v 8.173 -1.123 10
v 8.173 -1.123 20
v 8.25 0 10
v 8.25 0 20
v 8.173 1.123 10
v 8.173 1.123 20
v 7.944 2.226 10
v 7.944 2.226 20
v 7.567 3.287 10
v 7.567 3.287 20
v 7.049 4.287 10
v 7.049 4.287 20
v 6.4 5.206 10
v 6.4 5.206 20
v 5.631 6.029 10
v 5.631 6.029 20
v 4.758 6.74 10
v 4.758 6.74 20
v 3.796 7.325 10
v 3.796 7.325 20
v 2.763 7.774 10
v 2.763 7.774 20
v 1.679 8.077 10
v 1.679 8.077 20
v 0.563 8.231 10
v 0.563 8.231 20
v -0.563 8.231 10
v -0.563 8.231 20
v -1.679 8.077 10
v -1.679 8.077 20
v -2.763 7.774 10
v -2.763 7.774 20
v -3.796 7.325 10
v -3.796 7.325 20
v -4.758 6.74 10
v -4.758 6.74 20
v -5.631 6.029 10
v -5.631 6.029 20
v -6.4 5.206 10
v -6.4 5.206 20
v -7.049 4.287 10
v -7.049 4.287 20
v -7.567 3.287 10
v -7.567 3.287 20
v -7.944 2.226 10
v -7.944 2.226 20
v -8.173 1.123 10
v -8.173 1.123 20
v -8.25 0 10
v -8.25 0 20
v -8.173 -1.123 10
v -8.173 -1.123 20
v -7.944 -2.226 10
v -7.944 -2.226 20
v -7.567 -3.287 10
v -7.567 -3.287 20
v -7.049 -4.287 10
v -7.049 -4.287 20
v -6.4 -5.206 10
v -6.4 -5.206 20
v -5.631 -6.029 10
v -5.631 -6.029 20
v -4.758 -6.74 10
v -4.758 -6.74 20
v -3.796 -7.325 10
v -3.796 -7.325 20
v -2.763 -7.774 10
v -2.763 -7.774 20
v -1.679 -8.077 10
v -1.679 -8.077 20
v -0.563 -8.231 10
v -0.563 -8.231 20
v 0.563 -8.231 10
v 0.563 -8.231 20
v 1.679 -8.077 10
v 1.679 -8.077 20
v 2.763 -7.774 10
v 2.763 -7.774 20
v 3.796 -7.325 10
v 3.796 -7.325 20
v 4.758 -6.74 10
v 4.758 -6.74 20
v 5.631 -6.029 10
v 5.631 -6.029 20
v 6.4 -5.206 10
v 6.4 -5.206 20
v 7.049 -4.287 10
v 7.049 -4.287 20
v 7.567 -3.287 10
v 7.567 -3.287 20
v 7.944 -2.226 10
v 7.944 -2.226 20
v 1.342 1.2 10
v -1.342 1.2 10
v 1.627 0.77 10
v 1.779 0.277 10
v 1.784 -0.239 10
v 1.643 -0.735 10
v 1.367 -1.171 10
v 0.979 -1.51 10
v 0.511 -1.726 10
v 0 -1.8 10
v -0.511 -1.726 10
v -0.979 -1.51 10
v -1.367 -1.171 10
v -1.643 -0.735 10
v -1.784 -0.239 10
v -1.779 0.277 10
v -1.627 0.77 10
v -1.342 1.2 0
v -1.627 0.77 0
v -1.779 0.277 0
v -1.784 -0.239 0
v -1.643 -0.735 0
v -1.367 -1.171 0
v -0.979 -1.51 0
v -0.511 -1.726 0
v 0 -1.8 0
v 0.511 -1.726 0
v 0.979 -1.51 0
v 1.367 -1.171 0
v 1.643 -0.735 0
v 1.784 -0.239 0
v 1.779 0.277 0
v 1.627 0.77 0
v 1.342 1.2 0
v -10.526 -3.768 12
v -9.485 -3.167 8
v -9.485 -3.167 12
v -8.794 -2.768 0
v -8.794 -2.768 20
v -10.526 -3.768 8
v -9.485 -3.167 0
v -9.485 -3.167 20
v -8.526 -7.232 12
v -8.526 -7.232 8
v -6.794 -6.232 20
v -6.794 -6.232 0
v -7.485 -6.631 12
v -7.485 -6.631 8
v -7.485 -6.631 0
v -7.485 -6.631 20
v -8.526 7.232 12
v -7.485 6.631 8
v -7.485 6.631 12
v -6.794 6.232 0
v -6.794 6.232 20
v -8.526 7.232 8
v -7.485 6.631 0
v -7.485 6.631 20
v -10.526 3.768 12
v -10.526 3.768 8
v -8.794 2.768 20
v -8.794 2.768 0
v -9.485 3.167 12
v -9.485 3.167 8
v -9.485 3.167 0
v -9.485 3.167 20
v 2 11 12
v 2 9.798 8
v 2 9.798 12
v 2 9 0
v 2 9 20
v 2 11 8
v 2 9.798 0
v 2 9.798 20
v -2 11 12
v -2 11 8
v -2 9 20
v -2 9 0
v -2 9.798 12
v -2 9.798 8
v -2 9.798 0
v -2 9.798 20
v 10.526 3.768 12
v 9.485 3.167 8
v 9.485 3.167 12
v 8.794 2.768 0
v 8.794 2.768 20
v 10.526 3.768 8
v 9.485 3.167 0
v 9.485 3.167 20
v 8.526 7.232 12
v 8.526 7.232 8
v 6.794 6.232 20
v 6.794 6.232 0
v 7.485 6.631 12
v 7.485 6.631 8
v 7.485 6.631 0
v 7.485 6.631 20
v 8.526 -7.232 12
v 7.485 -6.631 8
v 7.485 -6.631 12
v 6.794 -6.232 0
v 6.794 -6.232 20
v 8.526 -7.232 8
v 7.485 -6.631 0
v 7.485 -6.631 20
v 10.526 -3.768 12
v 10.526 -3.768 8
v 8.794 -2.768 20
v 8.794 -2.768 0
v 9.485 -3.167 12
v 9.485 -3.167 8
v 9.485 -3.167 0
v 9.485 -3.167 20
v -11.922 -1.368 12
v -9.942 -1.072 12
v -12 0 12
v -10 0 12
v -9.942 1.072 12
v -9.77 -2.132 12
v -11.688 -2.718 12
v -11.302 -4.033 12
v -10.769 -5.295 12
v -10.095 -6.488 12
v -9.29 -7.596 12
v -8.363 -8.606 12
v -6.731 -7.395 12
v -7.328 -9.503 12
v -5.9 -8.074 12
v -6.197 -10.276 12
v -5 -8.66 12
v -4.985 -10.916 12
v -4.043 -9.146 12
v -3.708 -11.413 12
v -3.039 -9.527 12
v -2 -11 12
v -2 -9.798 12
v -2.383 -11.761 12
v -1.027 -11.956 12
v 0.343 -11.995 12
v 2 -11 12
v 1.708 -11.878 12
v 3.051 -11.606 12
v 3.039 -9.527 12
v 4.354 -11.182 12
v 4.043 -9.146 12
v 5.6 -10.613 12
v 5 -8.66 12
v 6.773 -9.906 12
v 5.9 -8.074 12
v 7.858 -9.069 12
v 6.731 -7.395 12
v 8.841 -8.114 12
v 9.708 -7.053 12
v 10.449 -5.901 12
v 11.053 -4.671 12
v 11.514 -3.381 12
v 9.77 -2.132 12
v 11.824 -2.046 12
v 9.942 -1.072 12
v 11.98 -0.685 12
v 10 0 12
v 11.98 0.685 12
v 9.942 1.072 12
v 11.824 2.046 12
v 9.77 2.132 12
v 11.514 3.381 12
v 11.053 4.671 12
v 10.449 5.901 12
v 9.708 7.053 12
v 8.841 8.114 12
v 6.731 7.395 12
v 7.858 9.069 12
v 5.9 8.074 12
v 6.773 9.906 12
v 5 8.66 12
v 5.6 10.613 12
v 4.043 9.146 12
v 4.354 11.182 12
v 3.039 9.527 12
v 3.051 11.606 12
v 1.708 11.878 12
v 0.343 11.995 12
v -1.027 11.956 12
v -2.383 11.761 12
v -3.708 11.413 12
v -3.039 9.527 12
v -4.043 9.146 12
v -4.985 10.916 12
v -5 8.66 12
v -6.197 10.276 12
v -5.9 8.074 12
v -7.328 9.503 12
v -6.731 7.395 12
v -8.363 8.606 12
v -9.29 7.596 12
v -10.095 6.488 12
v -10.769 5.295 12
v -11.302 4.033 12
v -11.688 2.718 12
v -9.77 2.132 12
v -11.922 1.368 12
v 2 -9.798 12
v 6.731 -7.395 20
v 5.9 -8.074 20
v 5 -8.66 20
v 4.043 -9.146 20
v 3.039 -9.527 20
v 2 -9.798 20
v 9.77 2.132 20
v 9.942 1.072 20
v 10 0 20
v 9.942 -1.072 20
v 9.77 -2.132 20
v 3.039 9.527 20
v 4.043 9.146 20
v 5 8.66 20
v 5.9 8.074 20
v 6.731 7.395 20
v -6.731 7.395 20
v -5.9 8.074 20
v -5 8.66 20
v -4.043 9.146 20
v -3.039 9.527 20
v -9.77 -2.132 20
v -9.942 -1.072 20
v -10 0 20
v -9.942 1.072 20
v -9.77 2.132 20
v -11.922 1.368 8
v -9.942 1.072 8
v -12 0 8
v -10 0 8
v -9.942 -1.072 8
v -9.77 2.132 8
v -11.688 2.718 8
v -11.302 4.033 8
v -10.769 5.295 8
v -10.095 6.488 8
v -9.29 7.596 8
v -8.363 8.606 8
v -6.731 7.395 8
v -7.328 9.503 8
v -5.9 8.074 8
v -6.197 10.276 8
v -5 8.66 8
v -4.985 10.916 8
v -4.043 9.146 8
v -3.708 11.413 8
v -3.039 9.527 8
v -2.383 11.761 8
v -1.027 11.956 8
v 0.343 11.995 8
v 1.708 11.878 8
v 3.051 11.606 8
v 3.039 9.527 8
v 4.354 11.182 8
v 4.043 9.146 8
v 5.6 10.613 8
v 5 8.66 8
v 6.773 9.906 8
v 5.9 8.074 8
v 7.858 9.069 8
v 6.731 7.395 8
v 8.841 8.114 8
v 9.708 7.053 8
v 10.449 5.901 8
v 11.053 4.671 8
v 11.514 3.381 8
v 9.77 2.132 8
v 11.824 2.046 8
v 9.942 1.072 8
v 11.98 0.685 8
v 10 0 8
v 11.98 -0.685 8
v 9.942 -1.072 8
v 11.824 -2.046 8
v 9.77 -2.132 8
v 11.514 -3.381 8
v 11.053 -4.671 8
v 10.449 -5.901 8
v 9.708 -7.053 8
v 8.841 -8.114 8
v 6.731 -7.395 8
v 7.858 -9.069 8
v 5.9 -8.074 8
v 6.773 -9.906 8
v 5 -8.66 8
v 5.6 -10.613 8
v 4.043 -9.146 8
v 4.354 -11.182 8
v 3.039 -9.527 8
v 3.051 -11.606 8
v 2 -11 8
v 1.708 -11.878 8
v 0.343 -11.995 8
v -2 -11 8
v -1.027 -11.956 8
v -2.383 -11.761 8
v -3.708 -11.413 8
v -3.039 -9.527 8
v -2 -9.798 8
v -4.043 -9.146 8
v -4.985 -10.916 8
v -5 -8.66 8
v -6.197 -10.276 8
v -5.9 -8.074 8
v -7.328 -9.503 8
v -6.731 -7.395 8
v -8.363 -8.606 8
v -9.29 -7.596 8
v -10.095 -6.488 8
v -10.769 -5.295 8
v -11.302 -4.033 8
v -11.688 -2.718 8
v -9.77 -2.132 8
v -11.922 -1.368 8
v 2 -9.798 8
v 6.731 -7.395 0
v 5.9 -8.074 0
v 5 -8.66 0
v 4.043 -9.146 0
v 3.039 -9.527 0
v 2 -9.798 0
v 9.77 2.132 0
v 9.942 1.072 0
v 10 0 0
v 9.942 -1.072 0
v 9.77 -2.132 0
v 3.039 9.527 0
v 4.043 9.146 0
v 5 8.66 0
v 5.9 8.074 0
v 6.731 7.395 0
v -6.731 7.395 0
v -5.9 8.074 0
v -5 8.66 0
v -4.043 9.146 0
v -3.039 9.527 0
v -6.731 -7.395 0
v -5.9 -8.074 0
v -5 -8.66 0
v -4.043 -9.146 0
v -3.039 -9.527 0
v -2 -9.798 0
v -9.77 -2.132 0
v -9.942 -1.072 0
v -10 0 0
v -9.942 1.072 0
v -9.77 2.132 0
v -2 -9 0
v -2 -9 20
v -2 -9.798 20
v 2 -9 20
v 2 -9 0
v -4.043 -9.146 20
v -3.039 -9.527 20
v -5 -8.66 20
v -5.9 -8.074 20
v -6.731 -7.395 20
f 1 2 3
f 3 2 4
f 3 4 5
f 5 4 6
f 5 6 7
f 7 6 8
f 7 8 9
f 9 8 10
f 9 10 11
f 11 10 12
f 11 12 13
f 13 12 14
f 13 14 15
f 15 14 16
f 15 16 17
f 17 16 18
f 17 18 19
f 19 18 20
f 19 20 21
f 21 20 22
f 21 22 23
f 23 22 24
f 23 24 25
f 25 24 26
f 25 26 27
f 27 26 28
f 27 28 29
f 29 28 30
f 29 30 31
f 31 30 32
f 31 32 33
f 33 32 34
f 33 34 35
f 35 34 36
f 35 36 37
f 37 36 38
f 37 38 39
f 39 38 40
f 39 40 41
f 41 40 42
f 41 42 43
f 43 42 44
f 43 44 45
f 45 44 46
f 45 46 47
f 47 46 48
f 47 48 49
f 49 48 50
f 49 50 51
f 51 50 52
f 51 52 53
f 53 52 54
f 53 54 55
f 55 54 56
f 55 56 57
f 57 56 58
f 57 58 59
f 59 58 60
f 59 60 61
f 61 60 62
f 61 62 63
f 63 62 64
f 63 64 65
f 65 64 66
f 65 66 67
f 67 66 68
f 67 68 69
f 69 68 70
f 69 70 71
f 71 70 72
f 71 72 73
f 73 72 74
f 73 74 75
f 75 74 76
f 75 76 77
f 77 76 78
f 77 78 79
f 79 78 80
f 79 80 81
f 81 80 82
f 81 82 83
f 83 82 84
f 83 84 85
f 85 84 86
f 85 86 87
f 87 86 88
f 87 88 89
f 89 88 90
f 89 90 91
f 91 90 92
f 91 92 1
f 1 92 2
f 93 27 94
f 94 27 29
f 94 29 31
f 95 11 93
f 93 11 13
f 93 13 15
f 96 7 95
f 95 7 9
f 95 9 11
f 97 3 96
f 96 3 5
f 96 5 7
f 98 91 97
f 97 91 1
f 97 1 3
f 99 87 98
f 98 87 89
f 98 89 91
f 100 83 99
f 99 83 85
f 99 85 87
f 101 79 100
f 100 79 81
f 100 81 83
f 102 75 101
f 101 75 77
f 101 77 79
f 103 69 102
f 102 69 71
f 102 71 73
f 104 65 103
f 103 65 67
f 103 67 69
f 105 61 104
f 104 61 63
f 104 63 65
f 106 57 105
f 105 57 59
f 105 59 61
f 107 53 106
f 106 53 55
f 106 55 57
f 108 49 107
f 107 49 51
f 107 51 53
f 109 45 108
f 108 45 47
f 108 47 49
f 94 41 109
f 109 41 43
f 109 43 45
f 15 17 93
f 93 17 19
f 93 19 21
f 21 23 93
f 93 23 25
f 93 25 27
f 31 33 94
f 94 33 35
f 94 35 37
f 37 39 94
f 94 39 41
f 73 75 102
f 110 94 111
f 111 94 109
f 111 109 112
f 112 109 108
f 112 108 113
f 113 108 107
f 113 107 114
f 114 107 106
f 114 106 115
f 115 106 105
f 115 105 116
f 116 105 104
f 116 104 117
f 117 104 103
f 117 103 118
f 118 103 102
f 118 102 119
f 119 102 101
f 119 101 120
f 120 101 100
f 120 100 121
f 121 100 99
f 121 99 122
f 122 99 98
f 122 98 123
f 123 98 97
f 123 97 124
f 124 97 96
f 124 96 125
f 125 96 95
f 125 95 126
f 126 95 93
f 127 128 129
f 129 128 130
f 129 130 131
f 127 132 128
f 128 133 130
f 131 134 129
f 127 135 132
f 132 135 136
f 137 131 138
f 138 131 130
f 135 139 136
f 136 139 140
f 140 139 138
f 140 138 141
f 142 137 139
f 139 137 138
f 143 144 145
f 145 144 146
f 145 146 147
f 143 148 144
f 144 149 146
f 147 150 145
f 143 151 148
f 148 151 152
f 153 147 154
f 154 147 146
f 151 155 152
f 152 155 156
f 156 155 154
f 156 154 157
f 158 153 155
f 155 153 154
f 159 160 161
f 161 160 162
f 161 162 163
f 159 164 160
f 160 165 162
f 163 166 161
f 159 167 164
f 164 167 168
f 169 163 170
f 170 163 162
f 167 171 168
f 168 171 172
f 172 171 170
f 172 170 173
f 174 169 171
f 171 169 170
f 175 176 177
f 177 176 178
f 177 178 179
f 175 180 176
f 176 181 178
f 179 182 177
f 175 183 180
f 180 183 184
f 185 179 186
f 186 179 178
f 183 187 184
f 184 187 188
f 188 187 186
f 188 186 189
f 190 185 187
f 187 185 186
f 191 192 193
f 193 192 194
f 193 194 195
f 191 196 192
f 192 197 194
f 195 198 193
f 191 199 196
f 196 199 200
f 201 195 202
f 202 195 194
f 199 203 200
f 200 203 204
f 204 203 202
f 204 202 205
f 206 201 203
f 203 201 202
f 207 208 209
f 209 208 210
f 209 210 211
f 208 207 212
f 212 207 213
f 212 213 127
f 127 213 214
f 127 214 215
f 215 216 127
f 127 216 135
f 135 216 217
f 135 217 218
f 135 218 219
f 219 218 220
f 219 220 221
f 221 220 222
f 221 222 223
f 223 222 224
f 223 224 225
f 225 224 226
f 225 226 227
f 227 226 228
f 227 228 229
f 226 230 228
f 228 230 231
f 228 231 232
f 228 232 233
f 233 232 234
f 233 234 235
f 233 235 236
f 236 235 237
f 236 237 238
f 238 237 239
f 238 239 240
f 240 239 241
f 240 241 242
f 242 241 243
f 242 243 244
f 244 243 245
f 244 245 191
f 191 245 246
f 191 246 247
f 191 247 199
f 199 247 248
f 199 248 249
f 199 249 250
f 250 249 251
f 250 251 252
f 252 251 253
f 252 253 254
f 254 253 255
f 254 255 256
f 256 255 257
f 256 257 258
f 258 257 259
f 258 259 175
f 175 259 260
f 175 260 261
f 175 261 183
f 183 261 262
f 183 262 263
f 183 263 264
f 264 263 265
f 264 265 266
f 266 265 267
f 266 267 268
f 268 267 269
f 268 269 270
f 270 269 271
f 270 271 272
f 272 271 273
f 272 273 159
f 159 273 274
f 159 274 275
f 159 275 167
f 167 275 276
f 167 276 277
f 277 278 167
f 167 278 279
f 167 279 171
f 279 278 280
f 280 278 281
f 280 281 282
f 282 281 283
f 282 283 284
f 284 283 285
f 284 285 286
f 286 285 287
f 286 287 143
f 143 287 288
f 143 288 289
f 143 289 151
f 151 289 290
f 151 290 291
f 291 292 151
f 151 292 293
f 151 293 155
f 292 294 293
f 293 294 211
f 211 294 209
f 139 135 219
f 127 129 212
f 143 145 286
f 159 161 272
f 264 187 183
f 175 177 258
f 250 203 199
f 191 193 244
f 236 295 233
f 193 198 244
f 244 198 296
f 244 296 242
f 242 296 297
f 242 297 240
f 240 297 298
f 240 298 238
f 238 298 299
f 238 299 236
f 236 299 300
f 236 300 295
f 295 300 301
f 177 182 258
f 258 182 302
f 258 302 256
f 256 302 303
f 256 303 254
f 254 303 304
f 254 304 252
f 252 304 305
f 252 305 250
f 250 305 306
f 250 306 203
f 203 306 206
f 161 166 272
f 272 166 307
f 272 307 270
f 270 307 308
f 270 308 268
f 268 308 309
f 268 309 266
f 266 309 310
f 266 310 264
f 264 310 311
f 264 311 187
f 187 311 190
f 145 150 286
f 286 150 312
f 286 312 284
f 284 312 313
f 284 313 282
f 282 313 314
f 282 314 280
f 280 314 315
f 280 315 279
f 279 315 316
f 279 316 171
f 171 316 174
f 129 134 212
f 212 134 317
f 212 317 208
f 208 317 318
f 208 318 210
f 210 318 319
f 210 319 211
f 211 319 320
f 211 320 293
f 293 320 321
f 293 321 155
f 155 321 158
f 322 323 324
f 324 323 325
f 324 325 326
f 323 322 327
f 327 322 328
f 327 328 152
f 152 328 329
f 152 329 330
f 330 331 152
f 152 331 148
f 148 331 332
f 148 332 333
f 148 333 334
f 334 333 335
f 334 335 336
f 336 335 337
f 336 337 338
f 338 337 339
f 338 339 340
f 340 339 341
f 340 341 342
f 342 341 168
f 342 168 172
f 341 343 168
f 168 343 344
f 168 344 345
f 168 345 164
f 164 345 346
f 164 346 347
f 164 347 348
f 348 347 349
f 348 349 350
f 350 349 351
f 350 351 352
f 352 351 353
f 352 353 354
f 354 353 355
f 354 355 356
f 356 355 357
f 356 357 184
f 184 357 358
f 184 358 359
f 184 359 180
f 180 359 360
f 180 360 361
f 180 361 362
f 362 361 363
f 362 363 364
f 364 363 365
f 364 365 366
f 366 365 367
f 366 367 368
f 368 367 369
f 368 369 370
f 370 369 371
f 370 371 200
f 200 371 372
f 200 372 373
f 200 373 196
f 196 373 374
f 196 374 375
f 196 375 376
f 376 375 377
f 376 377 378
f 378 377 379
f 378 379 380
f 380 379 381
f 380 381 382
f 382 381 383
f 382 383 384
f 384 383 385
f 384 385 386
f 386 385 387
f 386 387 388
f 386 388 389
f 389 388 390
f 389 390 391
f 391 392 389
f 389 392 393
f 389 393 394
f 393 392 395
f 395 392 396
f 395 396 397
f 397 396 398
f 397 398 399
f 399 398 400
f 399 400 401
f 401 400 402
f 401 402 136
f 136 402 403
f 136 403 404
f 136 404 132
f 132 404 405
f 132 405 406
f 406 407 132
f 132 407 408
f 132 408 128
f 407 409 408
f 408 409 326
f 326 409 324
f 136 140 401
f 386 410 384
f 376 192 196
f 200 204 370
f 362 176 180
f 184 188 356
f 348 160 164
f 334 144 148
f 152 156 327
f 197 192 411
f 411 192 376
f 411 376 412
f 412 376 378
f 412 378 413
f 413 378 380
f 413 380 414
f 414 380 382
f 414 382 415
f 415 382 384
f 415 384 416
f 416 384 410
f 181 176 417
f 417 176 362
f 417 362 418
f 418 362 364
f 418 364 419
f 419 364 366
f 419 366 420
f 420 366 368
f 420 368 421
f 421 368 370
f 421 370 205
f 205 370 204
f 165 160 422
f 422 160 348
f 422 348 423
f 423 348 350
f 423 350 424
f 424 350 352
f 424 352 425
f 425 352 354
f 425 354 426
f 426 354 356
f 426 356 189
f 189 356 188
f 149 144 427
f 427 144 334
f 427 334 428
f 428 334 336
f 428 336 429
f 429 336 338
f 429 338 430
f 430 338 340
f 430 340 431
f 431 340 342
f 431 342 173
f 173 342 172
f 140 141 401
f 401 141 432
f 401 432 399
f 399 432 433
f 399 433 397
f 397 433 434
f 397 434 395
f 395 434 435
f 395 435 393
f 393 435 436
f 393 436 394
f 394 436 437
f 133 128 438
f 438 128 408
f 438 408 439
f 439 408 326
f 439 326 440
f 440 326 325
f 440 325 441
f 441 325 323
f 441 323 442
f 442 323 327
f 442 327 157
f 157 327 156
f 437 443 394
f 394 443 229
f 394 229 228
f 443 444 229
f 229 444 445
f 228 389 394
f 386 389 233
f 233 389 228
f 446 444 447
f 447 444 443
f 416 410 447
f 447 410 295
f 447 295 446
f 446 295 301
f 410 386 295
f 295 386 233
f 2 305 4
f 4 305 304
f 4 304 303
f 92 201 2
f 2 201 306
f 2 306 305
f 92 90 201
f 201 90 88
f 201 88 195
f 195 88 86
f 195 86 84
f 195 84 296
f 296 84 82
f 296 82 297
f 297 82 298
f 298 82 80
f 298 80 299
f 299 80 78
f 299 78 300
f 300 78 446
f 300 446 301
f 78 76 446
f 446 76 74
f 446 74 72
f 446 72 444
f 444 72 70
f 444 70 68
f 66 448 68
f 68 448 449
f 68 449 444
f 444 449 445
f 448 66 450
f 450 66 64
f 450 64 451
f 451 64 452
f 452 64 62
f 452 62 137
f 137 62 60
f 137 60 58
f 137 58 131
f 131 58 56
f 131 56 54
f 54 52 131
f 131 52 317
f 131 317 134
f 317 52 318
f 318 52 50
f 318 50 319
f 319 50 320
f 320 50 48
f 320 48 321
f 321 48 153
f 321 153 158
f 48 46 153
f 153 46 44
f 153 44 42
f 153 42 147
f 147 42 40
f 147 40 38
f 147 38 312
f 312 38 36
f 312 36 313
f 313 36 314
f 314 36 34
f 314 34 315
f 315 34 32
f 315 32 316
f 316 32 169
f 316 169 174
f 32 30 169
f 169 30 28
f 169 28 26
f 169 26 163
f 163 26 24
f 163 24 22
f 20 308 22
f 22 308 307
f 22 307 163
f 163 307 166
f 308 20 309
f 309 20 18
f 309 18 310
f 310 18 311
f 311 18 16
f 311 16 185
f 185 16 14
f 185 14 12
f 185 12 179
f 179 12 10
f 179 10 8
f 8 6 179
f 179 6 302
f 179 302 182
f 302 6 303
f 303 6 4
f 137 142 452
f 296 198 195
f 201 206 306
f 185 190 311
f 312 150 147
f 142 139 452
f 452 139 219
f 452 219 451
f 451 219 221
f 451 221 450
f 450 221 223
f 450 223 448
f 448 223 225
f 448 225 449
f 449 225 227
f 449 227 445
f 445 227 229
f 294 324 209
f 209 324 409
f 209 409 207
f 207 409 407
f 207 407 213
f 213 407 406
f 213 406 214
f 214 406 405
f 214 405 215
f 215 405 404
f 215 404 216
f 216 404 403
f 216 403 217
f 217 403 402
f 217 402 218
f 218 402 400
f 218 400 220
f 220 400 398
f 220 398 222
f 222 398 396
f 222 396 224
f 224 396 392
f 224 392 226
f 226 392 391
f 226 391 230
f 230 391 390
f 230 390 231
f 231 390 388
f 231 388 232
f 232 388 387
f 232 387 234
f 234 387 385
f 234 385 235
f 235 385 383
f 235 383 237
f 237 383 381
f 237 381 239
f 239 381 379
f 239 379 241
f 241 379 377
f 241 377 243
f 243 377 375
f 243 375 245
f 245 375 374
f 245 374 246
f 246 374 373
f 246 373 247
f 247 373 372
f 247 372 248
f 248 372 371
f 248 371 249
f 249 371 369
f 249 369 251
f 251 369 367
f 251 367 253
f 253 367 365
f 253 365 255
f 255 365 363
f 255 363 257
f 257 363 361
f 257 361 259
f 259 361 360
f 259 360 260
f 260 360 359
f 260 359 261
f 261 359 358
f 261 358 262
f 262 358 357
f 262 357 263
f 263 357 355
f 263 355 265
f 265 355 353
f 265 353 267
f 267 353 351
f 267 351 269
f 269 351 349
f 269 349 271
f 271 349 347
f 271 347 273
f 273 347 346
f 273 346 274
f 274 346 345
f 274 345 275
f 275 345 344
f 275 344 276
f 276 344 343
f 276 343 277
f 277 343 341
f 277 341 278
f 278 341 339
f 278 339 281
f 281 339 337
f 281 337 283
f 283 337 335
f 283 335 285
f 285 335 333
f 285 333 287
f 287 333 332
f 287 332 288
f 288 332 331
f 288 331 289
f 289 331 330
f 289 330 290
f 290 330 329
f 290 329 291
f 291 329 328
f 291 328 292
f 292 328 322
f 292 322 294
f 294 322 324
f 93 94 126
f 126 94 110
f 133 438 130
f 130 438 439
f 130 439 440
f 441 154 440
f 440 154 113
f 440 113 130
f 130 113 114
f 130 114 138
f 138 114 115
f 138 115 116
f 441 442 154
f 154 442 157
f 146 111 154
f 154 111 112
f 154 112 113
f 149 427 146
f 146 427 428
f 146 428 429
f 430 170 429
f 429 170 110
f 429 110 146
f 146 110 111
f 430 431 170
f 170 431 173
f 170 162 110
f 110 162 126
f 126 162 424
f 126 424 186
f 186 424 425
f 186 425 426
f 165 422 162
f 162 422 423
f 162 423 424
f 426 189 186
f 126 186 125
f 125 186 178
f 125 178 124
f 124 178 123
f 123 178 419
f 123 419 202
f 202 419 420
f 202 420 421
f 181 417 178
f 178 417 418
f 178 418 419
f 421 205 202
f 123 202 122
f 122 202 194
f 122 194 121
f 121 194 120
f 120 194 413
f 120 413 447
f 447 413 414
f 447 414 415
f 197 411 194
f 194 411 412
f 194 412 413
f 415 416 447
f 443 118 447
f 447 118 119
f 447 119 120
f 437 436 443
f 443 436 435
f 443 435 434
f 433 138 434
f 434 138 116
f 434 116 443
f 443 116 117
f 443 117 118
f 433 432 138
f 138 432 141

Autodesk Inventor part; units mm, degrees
ref_plane "YZ Plane" through (0, 0, 0) normal (1, 0, 0) x (0, 1, 0)
ref_plane "XZ Plane" through (0, 0, 0) normal (0, 1, 0) x (-1, 0, 0)
sketch "Szkic1" plane through (0, 0, 0) normal (0, 0, 1) x (1, 0, 0)
  line L0 (-14, 0) -> (14, 0) projected
  line L1 (0, -14) -> (0, 14) projected
  circle A0 centre (0, 0) radius 10
  circle A1 centre (0, 0) radius 1.8
  line L2 (-1.3416, 1.2) -> (1.3416, 1.2)
  dimension "d1" = 20
  dimension "d2" = 3.6
  dimension "d3" = 1.2
extrude "Wyciągnięcie proste1" add sketch "Szkic1" along normal blind 20 contours A1 L1 A0 L0 | L0 A0 L1 A1 | L2 L1 A1 | L1 A0 L0 A1 | L1 A1 L0 A0 | L2 A1 L1
ref_plane "Płaszczyzna konstrukcyjna1" through (0, 0, 8) normal (0, 0, -1) x (-1, 0, 0)
sketch "Szkic2" plane through (0, 0, 8) normal (0, 0, -1) x (-1, 0, 0)
  circle A0 centre (0, 0) radius 10 projected
  arc A1 (-1.3416, 1.2) -> (1.3416, 1.2) centre (0, 0) ccw projected
  line L0 (1.3416, 1.2) -> (-1.3416, 1.2) projected
  circle A2 centre (0, 0) radius 12
  dimension "d7" = 24
extrude "Wyciągnięcie proste2" add sketch "Szkic2" against normal blind 4 contours A2
sketch "Szkic3" plane through (0, 0, 0) normal (0, 0, -1) x (-1, 0, 0)
  circle A0 centre (0, 0) radius 10 projected
  arc A1 (-1.3416, 1.2) -> (1.3416, 1.2) centre (0, 0) ccw projected
  line L0 (1.3416, 1.2) -> (-1.3416, 1.2) projected
  circle A2 centre (0, 0) radius 12 projected
  circle A3 centre (0, 0) radius 10 projected
  line L1 (16.8, 0) -> (-16.8, 0) projected
  line L2 (0, -16.8) -> (0, 16.8) projected
  line L3 (2, -11) -> (-2, -11)
  line L4 (-2, -11) -> (-2, -9)
  line L5 (-2, -9) -> (2, -9)
  line L6 (2, -9) -> (2, -11)
  circle A4 centre (0, 0) radius 10 projected
  line L7 (2, -11) -> (-2, -9) construction
  line L8 (-2, -11) -> (2, -9) construction
  point P0 (0, -10)
  dimension "d11" = 4
  dimension "d12" = 2
extrude "Wyciągnięcie proste3" cut sketch "Szkic3" against normal up to surface (20 mm away) contours L6 L3 L2 A0 | A0 L2 L5 L6 | L2 L3 L4 A0 | A0 L4 L5 L2
pattern_circular "Szyk kołowy1" count 6 over 360 about axis through (0, 0, -10) along (0, 0, 1) of "Wyciągnięcie proste3"
sketch "Szkic4" plane through (0, 0, 20) normal (0, 0, 1) x (1, 0, 0)
  circle A0 centre (0, 0) radius 14
  circle A1 centre (0, 0) radius 8.25
  dimension "d20" = 28
  dimension "d21" = 16.5
extrude "Wyciągnięcie proste4" cut sketch "Szkic4" against normal blind 10 contours A1
properties part number "koło" material "Tworzywo sztuczne PET"
